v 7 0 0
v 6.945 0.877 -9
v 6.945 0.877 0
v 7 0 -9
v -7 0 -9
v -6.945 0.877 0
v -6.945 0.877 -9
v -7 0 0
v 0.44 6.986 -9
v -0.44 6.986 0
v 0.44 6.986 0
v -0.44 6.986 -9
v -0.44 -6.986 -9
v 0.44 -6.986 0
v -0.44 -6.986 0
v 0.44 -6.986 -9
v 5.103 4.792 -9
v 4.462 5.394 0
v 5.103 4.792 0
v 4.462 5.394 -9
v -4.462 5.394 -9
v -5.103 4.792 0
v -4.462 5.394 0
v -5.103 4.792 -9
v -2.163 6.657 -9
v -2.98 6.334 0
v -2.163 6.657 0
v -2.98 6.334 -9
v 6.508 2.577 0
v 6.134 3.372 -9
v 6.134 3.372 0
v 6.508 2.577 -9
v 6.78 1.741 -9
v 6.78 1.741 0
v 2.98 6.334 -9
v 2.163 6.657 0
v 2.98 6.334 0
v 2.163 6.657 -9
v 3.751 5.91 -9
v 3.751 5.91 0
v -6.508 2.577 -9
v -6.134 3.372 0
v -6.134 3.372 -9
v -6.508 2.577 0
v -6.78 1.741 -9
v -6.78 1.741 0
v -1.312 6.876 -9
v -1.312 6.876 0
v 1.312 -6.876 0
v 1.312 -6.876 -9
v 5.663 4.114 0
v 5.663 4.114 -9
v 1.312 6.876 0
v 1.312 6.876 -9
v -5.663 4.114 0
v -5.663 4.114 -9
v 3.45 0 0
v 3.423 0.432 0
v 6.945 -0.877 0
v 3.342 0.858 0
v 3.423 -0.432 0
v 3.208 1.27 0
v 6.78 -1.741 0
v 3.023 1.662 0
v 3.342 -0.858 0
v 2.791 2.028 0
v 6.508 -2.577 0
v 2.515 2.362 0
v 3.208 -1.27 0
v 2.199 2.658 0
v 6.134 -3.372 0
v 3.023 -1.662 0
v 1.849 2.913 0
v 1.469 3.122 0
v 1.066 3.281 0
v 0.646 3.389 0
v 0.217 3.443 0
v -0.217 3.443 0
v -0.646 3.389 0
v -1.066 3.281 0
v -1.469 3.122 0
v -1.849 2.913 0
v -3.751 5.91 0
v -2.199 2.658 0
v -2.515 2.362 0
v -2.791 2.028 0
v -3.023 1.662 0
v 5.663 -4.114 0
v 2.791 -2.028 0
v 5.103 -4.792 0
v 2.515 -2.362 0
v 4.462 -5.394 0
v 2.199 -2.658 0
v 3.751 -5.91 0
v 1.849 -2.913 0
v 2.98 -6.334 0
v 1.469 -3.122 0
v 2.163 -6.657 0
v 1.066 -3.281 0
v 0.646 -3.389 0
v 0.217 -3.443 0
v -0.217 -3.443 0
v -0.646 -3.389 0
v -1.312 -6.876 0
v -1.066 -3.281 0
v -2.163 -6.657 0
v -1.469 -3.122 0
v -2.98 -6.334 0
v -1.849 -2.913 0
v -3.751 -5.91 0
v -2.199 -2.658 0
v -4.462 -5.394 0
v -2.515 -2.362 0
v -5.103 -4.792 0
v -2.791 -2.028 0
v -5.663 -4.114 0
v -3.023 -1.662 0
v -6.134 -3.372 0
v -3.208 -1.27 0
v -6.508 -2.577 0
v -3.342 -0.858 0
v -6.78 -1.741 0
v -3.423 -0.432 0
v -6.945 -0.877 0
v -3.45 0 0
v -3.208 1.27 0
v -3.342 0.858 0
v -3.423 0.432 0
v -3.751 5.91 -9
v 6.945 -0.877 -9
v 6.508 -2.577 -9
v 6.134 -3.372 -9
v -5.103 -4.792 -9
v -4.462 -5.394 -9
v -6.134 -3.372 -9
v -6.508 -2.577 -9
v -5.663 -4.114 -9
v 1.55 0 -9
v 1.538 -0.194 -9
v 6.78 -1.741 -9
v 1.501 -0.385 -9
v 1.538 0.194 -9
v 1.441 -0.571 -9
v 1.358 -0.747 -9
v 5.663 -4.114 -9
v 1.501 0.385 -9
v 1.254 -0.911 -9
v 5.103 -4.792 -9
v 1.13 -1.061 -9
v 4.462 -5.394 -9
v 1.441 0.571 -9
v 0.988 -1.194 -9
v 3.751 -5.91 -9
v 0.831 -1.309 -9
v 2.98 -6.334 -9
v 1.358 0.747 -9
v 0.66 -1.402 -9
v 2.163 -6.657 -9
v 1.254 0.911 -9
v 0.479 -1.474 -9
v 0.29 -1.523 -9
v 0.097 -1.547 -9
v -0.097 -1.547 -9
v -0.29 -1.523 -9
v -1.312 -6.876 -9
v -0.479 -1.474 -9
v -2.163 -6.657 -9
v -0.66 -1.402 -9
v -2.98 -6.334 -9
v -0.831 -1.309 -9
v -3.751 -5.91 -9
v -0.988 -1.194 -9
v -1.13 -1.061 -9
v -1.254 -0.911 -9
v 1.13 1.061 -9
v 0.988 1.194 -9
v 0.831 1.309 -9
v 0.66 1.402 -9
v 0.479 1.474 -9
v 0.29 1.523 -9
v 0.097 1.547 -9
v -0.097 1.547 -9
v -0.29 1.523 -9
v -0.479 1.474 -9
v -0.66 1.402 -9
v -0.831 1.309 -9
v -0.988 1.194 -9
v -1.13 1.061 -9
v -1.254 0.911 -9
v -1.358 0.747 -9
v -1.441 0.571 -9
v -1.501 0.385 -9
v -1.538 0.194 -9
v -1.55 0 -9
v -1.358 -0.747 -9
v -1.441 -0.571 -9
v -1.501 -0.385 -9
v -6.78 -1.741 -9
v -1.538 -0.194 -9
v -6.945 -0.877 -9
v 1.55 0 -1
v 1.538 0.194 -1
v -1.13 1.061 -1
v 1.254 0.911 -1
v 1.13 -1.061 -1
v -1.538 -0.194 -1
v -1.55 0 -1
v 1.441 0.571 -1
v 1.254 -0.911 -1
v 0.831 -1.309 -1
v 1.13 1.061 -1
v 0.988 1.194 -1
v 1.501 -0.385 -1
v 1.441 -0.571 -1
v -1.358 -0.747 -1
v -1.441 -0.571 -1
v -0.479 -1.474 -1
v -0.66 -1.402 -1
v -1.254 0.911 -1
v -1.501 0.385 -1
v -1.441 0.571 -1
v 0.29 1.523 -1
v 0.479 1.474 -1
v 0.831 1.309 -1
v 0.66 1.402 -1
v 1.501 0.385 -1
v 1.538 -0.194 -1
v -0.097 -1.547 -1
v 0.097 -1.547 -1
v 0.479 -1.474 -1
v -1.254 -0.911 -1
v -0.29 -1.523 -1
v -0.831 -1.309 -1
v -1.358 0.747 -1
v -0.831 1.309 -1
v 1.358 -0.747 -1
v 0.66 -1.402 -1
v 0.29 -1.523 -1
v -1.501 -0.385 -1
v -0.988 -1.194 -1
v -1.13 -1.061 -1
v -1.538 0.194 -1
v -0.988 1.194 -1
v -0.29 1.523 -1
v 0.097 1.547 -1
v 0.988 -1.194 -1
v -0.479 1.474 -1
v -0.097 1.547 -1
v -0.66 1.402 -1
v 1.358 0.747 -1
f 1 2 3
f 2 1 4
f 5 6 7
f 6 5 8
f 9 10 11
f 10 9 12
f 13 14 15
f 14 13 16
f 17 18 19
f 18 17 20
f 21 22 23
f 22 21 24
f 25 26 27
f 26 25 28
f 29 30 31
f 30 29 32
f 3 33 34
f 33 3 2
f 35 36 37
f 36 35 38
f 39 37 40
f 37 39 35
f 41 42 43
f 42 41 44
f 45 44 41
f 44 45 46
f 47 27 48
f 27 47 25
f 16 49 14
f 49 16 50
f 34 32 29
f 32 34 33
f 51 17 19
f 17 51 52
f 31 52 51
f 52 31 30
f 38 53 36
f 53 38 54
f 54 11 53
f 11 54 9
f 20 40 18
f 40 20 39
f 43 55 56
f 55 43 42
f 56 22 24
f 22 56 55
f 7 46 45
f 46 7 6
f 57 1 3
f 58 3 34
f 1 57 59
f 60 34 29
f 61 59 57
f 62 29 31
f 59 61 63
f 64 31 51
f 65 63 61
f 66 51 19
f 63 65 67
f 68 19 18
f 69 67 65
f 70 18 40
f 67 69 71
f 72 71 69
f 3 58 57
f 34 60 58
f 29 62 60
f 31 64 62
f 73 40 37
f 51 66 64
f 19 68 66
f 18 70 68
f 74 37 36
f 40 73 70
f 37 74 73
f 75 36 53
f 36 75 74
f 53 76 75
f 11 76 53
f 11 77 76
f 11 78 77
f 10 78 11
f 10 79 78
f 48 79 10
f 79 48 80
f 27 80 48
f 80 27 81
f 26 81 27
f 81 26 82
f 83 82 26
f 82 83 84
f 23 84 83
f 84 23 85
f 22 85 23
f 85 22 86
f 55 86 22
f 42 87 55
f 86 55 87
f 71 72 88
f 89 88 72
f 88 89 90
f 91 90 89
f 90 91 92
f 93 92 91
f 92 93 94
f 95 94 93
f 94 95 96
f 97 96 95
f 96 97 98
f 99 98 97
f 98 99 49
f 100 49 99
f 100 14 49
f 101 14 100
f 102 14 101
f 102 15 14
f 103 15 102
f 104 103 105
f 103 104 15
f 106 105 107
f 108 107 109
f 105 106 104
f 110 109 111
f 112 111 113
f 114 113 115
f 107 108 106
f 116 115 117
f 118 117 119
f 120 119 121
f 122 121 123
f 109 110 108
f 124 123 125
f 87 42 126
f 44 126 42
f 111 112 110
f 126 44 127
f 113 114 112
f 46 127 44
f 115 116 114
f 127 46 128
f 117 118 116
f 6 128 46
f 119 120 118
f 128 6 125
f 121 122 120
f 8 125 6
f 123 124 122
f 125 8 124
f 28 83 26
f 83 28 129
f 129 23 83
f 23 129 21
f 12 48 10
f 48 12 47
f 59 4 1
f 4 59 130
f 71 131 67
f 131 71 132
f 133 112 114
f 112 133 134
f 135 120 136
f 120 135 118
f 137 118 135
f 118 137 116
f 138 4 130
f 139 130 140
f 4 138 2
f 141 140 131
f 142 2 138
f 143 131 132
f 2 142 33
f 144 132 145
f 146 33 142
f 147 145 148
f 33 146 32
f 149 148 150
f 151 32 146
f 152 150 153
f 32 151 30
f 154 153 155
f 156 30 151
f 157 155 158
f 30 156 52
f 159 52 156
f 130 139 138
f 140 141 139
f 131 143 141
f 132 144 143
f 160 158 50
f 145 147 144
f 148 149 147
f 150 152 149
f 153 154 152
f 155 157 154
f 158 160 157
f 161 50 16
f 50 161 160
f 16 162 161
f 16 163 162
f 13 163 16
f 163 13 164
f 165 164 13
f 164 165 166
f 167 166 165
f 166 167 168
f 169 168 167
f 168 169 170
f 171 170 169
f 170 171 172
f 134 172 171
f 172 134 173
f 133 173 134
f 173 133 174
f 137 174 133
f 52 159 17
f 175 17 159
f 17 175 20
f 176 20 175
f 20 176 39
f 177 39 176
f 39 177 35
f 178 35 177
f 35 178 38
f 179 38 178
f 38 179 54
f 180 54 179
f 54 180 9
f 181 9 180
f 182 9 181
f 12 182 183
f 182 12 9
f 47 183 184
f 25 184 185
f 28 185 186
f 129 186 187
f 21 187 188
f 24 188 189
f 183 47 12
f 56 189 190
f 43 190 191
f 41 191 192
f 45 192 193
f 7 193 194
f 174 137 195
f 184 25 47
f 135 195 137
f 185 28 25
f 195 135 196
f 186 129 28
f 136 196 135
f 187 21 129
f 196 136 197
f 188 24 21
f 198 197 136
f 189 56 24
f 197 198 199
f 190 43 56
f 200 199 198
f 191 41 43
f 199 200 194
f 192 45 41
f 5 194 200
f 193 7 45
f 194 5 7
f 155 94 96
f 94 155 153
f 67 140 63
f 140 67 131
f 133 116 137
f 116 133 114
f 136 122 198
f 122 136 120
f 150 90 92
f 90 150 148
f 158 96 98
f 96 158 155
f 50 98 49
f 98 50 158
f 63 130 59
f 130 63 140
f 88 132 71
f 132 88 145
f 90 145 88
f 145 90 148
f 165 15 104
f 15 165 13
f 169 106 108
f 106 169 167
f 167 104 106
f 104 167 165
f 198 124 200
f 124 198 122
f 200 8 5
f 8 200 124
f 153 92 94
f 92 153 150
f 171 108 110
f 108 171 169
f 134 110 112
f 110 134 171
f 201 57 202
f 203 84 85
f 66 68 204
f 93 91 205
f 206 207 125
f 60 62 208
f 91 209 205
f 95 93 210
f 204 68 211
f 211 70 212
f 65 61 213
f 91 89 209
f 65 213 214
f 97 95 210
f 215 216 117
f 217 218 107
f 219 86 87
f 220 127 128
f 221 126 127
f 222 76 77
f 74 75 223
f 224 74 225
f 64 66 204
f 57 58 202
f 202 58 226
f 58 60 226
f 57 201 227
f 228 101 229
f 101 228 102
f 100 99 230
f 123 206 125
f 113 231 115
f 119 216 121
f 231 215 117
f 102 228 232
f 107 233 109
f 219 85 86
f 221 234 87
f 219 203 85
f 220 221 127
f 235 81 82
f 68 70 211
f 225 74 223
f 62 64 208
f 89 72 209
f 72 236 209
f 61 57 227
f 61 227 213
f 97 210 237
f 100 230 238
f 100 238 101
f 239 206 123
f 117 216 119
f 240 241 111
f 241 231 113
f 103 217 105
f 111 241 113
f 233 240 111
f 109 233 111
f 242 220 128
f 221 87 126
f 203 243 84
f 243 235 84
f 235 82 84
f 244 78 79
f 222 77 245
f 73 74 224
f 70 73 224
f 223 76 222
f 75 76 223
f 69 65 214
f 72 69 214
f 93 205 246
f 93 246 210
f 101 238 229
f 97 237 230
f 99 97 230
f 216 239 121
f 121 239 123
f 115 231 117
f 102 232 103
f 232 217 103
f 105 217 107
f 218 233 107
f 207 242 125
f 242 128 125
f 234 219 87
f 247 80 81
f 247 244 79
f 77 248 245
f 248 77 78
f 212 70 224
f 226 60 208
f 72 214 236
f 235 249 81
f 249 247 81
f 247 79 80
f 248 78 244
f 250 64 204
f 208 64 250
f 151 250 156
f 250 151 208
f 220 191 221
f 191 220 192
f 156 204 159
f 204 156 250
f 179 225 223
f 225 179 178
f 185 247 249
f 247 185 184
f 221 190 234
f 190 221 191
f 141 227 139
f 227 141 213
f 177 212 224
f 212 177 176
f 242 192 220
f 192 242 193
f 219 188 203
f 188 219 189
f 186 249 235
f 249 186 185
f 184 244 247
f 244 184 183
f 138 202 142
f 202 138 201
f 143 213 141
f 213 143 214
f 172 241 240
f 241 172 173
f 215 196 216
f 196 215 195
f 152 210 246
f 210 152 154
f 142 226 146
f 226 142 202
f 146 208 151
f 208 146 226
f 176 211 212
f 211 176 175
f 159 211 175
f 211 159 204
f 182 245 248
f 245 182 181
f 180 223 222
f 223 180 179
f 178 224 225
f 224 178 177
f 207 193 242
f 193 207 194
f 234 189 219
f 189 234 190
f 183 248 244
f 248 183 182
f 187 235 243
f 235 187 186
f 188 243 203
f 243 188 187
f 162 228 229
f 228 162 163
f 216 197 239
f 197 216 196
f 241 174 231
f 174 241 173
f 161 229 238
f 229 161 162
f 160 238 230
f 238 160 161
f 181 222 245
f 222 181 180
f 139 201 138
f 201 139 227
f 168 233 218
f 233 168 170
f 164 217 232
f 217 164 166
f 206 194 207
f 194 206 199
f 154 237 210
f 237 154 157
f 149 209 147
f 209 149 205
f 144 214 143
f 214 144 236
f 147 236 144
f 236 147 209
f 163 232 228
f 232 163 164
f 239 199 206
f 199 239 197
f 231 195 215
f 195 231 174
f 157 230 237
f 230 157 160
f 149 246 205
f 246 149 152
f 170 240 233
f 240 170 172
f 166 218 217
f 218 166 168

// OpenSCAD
$fn = 50;


difference() {
	union() {
		translate(v = [0, 0, -9.0000000000]) {
			cylinder(h = 9, r = 7.0000000000);
		}
		translate(v = [0, 0, -9.0000000000]) {
			cylinder(h = 9, r = 2.8750000000);
		}
	}
	union() {
		translate(v = [0, 0, 0]) {
			rotate(a = [0, 0, 0]) {
				difference() {
					union() {
						#translate(v = [0, 0, -9.0000000000]) {
							cylinder(h = 9, r = 1.2500000000);
						}
						#translate(v = [0, 0, -1.0000000000]) {
							cylinder(h = 1.0000000000, r1 = 1.5500000000, r2 = 3.4500000000);
						}
						#translate(v = [0, 0, -9.0000000000]) {
							cylinder(h = 9, r = 1.5500000000);
						}
						#translate(v = [0, 0, -9.0000000000]) {
							cylinder(h = 9, r = 1.2500000000);
						}
					}
					union();
				}
			}
		}
	}
}
